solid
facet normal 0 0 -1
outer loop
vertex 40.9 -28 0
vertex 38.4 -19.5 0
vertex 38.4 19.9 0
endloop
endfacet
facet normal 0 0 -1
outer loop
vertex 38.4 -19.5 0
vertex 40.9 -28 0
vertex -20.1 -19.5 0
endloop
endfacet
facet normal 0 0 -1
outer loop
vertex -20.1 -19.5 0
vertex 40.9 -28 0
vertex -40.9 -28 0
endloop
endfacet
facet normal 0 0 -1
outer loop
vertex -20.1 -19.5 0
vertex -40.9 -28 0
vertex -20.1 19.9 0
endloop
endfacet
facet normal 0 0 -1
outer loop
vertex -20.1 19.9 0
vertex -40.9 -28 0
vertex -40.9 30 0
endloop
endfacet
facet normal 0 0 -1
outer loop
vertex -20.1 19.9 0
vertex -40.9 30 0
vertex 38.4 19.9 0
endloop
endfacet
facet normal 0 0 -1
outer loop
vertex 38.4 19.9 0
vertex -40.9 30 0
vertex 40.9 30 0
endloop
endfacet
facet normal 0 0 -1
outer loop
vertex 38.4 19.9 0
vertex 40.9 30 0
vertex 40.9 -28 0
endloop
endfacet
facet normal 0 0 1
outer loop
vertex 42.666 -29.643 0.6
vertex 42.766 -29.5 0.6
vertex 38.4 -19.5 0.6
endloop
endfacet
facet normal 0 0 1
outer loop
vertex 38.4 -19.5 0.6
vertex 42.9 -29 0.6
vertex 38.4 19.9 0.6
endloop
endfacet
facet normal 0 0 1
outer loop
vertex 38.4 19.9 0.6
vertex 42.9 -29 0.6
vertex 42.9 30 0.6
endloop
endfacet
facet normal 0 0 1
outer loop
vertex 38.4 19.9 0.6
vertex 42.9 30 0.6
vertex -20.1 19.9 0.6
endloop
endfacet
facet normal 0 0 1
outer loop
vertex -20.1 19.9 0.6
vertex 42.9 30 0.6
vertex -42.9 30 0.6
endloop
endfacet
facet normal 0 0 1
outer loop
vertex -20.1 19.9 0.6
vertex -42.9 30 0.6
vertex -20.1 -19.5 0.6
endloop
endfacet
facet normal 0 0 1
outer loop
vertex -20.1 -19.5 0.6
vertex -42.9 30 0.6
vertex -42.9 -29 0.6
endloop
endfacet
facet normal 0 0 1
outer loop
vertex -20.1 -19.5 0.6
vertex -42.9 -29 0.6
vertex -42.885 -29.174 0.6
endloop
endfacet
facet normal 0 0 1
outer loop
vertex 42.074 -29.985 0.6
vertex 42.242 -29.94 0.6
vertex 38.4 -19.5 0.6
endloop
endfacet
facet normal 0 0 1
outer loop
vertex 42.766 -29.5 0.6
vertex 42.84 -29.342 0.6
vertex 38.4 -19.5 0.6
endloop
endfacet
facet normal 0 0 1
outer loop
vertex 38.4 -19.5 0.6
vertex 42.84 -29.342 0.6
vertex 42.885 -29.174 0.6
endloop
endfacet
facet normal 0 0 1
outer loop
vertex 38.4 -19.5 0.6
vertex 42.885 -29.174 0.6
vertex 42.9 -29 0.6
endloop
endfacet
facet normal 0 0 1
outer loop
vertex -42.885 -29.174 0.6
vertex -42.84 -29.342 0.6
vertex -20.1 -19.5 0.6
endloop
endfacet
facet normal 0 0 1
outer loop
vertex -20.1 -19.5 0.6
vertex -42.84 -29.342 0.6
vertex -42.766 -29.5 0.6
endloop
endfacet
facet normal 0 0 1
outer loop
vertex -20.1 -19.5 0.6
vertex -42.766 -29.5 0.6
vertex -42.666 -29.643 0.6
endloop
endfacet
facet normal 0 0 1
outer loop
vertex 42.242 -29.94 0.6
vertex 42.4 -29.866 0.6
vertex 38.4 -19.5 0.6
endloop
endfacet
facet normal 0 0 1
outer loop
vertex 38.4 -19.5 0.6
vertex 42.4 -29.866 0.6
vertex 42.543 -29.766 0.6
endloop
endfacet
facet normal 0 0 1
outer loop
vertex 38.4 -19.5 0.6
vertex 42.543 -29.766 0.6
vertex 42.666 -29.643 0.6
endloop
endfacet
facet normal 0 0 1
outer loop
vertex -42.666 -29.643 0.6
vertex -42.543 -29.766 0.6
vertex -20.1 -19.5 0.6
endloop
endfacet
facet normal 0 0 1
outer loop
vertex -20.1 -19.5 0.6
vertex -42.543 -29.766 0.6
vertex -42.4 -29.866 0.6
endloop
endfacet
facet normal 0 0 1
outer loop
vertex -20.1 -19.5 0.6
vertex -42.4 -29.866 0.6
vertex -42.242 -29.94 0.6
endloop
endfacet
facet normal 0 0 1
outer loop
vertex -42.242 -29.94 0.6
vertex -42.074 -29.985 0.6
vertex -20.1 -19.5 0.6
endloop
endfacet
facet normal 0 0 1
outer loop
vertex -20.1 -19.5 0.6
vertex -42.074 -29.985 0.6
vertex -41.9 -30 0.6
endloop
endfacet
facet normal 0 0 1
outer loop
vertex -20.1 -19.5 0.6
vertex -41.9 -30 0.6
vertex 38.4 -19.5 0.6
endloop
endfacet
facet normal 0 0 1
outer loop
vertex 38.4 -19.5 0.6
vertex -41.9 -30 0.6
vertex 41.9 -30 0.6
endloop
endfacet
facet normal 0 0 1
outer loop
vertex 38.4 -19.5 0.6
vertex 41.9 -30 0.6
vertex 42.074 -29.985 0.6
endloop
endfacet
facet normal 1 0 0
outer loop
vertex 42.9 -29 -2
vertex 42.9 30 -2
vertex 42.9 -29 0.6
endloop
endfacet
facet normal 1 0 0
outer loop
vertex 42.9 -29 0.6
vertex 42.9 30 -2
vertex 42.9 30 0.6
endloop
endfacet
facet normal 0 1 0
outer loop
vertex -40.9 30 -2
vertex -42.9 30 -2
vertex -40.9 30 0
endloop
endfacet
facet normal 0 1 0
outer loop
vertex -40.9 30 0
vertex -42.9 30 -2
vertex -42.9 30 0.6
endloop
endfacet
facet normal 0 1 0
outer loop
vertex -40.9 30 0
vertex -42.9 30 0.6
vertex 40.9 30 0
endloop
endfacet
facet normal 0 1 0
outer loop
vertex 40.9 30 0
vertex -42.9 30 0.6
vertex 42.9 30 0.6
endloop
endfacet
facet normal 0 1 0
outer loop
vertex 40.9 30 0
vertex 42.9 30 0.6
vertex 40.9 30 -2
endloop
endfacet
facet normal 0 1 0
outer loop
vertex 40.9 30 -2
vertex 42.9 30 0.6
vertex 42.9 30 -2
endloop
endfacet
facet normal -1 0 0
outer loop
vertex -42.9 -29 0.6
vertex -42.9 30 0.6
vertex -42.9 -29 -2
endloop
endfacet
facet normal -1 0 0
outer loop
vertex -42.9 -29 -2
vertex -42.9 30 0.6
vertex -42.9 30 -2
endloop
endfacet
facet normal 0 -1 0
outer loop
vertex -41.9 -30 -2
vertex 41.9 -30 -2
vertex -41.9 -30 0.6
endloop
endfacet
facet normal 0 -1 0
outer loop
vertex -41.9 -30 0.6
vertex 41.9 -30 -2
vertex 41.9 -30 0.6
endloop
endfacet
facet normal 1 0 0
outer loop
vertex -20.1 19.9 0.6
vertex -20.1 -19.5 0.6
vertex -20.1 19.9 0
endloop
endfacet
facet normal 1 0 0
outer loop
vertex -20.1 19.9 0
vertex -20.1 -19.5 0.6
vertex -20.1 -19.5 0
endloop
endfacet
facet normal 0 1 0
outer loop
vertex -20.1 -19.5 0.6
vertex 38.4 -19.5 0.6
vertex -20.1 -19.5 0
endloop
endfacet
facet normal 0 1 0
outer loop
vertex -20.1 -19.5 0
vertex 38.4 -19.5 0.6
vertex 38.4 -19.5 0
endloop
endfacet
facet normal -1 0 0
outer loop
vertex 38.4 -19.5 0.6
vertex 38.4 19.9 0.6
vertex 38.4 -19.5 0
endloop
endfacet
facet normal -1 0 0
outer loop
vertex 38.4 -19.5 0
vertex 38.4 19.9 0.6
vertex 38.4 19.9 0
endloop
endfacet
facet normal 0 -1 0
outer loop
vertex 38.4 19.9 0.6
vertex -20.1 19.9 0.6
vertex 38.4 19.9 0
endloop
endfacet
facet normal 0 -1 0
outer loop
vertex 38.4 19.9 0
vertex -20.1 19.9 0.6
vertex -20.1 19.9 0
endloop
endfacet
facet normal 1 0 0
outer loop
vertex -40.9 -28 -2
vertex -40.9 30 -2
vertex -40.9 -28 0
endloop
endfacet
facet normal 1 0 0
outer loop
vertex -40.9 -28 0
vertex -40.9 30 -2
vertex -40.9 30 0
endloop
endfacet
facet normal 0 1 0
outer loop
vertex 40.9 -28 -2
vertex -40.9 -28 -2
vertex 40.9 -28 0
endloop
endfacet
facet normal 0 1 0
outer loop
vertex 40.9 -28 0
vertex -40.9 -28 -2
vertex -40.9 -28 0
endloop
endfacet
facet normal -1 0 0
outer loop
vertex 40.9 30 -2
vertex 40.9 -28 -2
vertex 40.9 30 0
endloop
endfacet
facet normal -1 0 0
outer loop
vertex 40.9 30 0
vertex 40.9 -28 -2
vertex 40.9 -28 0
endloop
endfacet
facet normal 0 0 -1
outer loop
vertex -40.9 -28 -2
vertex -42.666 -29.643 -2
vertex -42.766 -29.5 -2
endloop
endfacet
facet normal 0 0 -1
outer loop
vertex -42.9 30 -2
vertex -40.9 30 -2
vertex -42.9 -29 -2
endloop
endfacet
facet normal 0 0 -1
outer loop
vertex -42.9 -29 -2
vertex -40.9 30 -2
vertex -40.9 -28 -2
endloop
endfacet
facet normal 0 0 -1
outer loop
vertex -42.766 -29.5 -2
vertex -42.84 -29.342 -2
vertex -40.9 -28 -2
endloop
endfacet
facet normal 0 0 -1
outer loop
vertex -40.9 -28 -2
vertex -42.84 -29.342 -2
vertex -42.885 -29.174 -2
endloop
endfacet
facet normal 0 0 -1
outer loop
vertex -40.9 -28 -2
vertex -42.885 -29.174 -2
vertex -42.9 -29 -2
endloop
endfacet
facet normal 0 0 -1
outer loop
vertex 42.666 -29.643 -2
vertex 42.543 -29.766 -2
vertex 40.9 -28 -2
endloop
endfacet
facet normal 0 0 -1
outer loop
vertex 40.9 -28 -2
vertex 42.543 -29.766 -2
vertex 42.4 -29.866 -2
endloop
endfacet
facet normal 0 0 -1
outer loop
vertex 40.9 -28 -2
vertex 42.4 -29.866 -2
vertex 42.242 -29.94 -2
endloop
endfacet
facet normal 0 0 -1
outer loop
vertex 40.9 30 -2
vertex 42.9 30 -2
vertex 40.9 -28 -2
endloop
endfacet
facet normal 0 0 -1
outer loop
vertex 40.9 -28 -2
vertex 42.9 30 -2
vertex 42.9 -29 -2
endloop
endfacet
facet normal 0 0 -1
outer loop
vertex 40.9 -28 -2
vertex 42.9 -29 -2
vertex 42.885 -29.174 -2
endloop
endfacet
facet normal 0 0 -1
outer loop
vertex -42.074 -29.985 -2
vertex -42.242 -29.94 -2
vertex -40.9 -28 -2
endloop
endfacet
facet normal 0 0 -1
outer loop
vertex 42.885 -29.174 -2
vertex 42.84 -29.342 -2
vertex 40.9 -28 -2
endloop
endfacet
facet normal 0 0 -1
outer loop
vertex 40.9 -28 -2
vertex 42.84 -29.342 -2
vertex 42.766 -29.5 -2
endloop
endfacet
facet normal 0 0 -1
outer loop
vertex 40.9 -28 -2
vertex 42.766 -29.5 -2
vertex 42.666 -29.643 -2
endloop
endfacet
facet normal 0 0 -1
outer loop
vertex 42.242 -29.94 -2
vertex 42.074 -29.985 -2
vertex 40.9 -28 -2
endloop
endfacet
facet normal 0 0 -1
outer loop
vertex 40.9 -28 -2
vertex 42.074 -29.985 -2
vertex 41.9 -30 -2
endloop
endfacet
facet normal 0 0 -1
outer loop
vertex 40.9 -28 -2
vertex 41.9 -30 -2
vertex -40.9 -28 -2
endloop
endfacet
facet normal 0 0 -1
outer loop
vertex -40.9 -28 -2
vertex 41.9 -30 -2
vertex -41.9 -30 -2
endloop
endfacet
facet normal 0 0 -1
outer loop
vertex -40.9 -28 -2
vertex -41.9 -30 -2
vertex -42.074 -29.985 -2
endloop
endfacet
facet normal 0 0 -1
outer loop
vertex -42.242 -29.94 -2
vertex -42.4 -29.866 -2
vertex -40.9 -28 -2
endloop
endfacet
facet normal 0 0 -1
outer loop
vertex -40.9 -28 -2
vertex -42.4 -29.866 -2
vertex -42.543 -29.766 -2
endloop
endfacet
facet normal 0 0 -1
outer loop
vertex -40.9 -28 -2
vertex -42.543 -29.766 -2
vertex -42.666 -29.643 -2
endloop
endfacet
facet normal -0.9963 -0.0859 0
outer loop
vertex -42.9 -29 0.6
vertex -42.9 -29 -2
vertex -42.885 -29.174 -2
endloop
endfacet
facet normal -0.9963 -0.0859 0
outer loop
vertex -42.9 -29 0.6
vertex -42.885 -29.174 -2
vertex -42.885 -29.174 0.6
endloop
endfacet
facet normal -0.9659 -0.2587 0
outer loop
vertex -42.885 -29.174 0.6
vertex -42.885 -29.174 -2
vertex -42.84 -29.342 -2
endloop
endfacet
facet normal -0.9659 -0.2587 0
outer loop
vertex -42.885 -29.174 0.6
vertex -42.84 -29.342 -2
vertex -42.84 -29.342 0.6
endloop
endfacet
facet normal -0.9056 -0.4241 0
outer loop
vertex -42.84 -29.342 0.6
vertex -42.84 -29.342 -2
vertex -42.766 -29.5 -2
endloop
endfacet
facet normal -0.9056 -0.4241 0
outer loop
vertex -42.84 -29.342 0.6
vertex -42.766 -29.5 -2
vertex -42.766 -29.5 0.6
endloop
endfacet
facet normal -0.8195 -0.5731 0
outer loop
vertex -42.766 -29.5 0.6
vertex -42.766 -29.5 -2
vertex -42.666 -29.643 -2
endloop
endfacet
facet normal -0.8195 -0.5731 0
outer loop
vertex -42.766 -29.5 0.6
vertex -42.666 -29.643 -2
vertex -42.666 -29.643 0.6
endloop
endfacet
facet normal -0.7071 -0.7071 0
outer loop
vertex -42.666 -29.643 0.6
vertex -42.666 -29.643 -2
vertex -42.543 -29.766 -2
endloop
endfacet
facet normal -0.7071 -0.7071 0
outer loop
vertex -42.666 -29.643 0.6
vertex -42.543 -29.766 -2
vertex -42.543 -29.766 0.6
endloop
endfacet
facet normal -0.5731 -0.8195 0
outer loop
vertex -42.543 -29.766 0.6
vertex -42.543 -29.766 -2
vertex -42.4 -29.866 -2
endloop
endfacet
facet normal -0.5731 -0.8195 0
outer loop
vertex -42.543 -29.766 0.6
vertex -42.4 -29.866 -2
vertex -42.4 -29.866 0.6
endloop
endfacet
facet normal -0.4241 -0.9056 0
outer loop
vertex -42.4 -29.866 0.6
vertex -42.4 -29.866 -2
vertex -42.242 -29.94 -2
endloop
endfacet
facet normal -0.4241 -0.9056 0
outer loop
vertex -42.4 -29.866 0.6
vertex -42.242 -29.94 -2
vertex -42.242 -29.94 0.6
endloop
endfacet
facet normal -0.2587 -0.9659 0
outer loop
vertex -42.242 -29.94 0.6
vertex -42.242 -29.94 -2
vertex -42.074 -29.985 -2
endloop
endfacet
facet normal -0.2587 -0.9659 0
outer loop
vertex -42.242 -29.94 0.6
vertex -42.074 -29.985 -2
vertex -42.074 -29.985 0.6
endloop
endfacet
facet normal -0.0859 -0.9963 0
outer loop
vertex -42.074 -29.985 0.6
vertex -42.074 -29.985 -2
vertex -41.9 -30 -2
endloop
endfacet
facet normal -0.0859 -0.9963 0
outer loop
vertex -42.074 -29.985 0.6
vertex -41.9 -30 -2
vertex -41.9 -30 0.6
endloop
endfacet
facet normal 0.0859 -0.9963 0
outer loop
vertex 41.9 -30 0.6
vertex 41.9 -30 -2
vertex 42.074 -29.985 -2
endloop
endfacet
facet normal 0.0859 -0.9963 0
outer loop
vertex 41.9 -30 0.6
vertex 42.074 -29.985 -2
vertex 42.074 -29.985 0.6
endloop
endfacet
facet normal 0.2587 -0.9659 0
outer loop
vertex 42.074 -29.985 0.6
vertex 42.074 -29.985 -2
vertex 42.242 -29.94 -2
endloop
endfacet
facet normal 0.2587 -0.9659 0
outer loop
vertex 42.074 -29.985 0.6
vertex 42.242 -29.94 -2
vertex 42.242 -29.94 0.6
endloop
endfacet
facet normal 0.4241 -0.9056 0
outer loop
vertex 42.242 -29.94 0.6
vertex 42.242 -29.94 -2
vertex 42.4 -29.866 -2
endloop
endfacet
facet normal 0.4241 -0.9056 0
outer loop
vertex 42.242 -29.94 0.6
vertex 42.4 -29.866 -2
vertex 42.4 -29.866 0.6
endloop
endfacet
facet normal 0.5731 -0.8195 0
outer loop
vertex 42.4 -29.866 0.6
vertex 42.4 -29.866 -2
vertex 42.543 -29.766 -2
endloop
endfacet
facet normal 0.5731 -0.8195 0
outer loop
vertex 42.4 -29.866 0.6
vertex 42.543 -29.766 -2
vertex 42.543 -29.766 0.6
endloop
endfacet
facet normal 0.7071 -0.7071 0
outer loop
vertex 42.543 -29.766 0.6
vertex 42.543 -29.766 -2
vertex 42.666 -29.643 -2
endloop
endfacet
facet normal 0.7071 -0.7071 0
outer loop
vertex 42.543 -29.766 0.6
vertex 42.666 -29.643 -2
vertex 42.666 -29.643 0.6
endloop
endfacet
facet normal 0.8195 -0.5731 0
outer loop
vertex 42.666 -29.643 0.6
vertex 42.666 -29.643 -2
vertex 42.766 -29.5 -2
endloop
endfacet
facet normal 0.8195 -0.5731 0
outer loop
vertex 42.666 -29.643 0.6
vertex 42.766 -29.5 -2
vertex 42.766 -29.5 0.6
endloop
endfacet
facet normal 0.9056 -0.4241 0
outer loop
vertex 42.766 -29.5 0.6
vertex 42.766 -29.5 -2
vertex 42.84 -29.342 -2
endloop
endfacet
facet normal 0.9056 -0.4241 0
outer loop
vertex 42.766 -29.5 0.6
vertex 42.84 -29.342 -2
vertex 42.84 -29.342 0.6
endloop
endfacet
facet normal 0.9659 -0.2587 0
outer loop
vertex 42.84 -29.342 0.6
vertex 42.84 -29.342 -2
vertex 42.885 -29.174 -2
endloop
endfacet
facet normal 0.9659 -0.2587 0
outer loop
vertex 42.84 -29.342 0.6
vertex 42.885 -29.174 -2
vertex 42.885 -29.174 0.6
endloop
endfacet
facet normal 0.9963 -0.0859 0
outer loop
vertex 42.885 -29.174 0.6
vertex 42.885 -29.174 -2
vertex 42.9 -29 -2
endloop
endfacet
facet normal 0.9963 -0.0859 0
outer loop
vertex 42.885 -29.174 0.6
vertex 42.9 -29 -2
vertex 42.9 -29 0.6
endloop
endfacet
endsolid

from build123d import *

# Parameters (mm, degrees)
SKETCH_1_W      = 85.8
SKETCH_1_H      = 60
SKETCH_1_W_2    = 58.5
SKETCH_1_H_2    = 39.4
EXTRUDE_1_DEPTH = 0.6
SKETCH_2_W      = 2
SKETCH_2_H      = 58
SKETCH_2_W_2    = 81.8
SKETCH_2_H_2    = 2
EXTRUDE_2_DEPTH = 2
FILLET_1_R      = 1


with BuildPart() as part:
    # 草图1 → 凸台-拉伸1 (new body)
    with BuildSketch(Plane.XY):
        Rectangle(SKETCH_1_W, SKETCH_1_H)
        with Locations((9.15, 0.2)):
            Rectangle(SKETCH_1_W_2, SKETCH_1_H_2, mode=Mode.SUBTRACT)
    extrude(amount=EXTRUDE_1_DEPTH)

    # 草图2 → 凸台-拉伸2 (add)
    with BuildSketch(Plane(origin=(0, 0, 0), x_dir=(-1, 0, 0), z_dir=(0, 0, -1))):
        with Locations((-41.9, 1)):
            Rectangle(SKETCH_2_W, SKETCH_2_H)
        with Locations((0, -29)):
            Rectangle(SKETCH_2_W_2, SKETCH_2_H_2)
        with Locations((-41.9, -29)):
            Rectangle(SKETCH_2_W, SKETCH_2_H_2)
        with Locations((41.9, 1)):
            Rectangle(SKETCH_2_W, SKETCH_2_H)
        with Locations((41.9, -29)):
            Rectangle(SKETCH_2_W, SKETCH_2_H_2)
    extrude(amount=EXTRUDE_2_DEPTH)

    # 圆角1
    fillet_1_edges = [part.edges().sort_by_distance(p)[0] for p in [
        (42.9, -30, -0.7),
        (-42.9, -30, -0.7),
    ]]
    fillet(fillet_1_edges, radius=FILLET_1_R)


solid = part.part
